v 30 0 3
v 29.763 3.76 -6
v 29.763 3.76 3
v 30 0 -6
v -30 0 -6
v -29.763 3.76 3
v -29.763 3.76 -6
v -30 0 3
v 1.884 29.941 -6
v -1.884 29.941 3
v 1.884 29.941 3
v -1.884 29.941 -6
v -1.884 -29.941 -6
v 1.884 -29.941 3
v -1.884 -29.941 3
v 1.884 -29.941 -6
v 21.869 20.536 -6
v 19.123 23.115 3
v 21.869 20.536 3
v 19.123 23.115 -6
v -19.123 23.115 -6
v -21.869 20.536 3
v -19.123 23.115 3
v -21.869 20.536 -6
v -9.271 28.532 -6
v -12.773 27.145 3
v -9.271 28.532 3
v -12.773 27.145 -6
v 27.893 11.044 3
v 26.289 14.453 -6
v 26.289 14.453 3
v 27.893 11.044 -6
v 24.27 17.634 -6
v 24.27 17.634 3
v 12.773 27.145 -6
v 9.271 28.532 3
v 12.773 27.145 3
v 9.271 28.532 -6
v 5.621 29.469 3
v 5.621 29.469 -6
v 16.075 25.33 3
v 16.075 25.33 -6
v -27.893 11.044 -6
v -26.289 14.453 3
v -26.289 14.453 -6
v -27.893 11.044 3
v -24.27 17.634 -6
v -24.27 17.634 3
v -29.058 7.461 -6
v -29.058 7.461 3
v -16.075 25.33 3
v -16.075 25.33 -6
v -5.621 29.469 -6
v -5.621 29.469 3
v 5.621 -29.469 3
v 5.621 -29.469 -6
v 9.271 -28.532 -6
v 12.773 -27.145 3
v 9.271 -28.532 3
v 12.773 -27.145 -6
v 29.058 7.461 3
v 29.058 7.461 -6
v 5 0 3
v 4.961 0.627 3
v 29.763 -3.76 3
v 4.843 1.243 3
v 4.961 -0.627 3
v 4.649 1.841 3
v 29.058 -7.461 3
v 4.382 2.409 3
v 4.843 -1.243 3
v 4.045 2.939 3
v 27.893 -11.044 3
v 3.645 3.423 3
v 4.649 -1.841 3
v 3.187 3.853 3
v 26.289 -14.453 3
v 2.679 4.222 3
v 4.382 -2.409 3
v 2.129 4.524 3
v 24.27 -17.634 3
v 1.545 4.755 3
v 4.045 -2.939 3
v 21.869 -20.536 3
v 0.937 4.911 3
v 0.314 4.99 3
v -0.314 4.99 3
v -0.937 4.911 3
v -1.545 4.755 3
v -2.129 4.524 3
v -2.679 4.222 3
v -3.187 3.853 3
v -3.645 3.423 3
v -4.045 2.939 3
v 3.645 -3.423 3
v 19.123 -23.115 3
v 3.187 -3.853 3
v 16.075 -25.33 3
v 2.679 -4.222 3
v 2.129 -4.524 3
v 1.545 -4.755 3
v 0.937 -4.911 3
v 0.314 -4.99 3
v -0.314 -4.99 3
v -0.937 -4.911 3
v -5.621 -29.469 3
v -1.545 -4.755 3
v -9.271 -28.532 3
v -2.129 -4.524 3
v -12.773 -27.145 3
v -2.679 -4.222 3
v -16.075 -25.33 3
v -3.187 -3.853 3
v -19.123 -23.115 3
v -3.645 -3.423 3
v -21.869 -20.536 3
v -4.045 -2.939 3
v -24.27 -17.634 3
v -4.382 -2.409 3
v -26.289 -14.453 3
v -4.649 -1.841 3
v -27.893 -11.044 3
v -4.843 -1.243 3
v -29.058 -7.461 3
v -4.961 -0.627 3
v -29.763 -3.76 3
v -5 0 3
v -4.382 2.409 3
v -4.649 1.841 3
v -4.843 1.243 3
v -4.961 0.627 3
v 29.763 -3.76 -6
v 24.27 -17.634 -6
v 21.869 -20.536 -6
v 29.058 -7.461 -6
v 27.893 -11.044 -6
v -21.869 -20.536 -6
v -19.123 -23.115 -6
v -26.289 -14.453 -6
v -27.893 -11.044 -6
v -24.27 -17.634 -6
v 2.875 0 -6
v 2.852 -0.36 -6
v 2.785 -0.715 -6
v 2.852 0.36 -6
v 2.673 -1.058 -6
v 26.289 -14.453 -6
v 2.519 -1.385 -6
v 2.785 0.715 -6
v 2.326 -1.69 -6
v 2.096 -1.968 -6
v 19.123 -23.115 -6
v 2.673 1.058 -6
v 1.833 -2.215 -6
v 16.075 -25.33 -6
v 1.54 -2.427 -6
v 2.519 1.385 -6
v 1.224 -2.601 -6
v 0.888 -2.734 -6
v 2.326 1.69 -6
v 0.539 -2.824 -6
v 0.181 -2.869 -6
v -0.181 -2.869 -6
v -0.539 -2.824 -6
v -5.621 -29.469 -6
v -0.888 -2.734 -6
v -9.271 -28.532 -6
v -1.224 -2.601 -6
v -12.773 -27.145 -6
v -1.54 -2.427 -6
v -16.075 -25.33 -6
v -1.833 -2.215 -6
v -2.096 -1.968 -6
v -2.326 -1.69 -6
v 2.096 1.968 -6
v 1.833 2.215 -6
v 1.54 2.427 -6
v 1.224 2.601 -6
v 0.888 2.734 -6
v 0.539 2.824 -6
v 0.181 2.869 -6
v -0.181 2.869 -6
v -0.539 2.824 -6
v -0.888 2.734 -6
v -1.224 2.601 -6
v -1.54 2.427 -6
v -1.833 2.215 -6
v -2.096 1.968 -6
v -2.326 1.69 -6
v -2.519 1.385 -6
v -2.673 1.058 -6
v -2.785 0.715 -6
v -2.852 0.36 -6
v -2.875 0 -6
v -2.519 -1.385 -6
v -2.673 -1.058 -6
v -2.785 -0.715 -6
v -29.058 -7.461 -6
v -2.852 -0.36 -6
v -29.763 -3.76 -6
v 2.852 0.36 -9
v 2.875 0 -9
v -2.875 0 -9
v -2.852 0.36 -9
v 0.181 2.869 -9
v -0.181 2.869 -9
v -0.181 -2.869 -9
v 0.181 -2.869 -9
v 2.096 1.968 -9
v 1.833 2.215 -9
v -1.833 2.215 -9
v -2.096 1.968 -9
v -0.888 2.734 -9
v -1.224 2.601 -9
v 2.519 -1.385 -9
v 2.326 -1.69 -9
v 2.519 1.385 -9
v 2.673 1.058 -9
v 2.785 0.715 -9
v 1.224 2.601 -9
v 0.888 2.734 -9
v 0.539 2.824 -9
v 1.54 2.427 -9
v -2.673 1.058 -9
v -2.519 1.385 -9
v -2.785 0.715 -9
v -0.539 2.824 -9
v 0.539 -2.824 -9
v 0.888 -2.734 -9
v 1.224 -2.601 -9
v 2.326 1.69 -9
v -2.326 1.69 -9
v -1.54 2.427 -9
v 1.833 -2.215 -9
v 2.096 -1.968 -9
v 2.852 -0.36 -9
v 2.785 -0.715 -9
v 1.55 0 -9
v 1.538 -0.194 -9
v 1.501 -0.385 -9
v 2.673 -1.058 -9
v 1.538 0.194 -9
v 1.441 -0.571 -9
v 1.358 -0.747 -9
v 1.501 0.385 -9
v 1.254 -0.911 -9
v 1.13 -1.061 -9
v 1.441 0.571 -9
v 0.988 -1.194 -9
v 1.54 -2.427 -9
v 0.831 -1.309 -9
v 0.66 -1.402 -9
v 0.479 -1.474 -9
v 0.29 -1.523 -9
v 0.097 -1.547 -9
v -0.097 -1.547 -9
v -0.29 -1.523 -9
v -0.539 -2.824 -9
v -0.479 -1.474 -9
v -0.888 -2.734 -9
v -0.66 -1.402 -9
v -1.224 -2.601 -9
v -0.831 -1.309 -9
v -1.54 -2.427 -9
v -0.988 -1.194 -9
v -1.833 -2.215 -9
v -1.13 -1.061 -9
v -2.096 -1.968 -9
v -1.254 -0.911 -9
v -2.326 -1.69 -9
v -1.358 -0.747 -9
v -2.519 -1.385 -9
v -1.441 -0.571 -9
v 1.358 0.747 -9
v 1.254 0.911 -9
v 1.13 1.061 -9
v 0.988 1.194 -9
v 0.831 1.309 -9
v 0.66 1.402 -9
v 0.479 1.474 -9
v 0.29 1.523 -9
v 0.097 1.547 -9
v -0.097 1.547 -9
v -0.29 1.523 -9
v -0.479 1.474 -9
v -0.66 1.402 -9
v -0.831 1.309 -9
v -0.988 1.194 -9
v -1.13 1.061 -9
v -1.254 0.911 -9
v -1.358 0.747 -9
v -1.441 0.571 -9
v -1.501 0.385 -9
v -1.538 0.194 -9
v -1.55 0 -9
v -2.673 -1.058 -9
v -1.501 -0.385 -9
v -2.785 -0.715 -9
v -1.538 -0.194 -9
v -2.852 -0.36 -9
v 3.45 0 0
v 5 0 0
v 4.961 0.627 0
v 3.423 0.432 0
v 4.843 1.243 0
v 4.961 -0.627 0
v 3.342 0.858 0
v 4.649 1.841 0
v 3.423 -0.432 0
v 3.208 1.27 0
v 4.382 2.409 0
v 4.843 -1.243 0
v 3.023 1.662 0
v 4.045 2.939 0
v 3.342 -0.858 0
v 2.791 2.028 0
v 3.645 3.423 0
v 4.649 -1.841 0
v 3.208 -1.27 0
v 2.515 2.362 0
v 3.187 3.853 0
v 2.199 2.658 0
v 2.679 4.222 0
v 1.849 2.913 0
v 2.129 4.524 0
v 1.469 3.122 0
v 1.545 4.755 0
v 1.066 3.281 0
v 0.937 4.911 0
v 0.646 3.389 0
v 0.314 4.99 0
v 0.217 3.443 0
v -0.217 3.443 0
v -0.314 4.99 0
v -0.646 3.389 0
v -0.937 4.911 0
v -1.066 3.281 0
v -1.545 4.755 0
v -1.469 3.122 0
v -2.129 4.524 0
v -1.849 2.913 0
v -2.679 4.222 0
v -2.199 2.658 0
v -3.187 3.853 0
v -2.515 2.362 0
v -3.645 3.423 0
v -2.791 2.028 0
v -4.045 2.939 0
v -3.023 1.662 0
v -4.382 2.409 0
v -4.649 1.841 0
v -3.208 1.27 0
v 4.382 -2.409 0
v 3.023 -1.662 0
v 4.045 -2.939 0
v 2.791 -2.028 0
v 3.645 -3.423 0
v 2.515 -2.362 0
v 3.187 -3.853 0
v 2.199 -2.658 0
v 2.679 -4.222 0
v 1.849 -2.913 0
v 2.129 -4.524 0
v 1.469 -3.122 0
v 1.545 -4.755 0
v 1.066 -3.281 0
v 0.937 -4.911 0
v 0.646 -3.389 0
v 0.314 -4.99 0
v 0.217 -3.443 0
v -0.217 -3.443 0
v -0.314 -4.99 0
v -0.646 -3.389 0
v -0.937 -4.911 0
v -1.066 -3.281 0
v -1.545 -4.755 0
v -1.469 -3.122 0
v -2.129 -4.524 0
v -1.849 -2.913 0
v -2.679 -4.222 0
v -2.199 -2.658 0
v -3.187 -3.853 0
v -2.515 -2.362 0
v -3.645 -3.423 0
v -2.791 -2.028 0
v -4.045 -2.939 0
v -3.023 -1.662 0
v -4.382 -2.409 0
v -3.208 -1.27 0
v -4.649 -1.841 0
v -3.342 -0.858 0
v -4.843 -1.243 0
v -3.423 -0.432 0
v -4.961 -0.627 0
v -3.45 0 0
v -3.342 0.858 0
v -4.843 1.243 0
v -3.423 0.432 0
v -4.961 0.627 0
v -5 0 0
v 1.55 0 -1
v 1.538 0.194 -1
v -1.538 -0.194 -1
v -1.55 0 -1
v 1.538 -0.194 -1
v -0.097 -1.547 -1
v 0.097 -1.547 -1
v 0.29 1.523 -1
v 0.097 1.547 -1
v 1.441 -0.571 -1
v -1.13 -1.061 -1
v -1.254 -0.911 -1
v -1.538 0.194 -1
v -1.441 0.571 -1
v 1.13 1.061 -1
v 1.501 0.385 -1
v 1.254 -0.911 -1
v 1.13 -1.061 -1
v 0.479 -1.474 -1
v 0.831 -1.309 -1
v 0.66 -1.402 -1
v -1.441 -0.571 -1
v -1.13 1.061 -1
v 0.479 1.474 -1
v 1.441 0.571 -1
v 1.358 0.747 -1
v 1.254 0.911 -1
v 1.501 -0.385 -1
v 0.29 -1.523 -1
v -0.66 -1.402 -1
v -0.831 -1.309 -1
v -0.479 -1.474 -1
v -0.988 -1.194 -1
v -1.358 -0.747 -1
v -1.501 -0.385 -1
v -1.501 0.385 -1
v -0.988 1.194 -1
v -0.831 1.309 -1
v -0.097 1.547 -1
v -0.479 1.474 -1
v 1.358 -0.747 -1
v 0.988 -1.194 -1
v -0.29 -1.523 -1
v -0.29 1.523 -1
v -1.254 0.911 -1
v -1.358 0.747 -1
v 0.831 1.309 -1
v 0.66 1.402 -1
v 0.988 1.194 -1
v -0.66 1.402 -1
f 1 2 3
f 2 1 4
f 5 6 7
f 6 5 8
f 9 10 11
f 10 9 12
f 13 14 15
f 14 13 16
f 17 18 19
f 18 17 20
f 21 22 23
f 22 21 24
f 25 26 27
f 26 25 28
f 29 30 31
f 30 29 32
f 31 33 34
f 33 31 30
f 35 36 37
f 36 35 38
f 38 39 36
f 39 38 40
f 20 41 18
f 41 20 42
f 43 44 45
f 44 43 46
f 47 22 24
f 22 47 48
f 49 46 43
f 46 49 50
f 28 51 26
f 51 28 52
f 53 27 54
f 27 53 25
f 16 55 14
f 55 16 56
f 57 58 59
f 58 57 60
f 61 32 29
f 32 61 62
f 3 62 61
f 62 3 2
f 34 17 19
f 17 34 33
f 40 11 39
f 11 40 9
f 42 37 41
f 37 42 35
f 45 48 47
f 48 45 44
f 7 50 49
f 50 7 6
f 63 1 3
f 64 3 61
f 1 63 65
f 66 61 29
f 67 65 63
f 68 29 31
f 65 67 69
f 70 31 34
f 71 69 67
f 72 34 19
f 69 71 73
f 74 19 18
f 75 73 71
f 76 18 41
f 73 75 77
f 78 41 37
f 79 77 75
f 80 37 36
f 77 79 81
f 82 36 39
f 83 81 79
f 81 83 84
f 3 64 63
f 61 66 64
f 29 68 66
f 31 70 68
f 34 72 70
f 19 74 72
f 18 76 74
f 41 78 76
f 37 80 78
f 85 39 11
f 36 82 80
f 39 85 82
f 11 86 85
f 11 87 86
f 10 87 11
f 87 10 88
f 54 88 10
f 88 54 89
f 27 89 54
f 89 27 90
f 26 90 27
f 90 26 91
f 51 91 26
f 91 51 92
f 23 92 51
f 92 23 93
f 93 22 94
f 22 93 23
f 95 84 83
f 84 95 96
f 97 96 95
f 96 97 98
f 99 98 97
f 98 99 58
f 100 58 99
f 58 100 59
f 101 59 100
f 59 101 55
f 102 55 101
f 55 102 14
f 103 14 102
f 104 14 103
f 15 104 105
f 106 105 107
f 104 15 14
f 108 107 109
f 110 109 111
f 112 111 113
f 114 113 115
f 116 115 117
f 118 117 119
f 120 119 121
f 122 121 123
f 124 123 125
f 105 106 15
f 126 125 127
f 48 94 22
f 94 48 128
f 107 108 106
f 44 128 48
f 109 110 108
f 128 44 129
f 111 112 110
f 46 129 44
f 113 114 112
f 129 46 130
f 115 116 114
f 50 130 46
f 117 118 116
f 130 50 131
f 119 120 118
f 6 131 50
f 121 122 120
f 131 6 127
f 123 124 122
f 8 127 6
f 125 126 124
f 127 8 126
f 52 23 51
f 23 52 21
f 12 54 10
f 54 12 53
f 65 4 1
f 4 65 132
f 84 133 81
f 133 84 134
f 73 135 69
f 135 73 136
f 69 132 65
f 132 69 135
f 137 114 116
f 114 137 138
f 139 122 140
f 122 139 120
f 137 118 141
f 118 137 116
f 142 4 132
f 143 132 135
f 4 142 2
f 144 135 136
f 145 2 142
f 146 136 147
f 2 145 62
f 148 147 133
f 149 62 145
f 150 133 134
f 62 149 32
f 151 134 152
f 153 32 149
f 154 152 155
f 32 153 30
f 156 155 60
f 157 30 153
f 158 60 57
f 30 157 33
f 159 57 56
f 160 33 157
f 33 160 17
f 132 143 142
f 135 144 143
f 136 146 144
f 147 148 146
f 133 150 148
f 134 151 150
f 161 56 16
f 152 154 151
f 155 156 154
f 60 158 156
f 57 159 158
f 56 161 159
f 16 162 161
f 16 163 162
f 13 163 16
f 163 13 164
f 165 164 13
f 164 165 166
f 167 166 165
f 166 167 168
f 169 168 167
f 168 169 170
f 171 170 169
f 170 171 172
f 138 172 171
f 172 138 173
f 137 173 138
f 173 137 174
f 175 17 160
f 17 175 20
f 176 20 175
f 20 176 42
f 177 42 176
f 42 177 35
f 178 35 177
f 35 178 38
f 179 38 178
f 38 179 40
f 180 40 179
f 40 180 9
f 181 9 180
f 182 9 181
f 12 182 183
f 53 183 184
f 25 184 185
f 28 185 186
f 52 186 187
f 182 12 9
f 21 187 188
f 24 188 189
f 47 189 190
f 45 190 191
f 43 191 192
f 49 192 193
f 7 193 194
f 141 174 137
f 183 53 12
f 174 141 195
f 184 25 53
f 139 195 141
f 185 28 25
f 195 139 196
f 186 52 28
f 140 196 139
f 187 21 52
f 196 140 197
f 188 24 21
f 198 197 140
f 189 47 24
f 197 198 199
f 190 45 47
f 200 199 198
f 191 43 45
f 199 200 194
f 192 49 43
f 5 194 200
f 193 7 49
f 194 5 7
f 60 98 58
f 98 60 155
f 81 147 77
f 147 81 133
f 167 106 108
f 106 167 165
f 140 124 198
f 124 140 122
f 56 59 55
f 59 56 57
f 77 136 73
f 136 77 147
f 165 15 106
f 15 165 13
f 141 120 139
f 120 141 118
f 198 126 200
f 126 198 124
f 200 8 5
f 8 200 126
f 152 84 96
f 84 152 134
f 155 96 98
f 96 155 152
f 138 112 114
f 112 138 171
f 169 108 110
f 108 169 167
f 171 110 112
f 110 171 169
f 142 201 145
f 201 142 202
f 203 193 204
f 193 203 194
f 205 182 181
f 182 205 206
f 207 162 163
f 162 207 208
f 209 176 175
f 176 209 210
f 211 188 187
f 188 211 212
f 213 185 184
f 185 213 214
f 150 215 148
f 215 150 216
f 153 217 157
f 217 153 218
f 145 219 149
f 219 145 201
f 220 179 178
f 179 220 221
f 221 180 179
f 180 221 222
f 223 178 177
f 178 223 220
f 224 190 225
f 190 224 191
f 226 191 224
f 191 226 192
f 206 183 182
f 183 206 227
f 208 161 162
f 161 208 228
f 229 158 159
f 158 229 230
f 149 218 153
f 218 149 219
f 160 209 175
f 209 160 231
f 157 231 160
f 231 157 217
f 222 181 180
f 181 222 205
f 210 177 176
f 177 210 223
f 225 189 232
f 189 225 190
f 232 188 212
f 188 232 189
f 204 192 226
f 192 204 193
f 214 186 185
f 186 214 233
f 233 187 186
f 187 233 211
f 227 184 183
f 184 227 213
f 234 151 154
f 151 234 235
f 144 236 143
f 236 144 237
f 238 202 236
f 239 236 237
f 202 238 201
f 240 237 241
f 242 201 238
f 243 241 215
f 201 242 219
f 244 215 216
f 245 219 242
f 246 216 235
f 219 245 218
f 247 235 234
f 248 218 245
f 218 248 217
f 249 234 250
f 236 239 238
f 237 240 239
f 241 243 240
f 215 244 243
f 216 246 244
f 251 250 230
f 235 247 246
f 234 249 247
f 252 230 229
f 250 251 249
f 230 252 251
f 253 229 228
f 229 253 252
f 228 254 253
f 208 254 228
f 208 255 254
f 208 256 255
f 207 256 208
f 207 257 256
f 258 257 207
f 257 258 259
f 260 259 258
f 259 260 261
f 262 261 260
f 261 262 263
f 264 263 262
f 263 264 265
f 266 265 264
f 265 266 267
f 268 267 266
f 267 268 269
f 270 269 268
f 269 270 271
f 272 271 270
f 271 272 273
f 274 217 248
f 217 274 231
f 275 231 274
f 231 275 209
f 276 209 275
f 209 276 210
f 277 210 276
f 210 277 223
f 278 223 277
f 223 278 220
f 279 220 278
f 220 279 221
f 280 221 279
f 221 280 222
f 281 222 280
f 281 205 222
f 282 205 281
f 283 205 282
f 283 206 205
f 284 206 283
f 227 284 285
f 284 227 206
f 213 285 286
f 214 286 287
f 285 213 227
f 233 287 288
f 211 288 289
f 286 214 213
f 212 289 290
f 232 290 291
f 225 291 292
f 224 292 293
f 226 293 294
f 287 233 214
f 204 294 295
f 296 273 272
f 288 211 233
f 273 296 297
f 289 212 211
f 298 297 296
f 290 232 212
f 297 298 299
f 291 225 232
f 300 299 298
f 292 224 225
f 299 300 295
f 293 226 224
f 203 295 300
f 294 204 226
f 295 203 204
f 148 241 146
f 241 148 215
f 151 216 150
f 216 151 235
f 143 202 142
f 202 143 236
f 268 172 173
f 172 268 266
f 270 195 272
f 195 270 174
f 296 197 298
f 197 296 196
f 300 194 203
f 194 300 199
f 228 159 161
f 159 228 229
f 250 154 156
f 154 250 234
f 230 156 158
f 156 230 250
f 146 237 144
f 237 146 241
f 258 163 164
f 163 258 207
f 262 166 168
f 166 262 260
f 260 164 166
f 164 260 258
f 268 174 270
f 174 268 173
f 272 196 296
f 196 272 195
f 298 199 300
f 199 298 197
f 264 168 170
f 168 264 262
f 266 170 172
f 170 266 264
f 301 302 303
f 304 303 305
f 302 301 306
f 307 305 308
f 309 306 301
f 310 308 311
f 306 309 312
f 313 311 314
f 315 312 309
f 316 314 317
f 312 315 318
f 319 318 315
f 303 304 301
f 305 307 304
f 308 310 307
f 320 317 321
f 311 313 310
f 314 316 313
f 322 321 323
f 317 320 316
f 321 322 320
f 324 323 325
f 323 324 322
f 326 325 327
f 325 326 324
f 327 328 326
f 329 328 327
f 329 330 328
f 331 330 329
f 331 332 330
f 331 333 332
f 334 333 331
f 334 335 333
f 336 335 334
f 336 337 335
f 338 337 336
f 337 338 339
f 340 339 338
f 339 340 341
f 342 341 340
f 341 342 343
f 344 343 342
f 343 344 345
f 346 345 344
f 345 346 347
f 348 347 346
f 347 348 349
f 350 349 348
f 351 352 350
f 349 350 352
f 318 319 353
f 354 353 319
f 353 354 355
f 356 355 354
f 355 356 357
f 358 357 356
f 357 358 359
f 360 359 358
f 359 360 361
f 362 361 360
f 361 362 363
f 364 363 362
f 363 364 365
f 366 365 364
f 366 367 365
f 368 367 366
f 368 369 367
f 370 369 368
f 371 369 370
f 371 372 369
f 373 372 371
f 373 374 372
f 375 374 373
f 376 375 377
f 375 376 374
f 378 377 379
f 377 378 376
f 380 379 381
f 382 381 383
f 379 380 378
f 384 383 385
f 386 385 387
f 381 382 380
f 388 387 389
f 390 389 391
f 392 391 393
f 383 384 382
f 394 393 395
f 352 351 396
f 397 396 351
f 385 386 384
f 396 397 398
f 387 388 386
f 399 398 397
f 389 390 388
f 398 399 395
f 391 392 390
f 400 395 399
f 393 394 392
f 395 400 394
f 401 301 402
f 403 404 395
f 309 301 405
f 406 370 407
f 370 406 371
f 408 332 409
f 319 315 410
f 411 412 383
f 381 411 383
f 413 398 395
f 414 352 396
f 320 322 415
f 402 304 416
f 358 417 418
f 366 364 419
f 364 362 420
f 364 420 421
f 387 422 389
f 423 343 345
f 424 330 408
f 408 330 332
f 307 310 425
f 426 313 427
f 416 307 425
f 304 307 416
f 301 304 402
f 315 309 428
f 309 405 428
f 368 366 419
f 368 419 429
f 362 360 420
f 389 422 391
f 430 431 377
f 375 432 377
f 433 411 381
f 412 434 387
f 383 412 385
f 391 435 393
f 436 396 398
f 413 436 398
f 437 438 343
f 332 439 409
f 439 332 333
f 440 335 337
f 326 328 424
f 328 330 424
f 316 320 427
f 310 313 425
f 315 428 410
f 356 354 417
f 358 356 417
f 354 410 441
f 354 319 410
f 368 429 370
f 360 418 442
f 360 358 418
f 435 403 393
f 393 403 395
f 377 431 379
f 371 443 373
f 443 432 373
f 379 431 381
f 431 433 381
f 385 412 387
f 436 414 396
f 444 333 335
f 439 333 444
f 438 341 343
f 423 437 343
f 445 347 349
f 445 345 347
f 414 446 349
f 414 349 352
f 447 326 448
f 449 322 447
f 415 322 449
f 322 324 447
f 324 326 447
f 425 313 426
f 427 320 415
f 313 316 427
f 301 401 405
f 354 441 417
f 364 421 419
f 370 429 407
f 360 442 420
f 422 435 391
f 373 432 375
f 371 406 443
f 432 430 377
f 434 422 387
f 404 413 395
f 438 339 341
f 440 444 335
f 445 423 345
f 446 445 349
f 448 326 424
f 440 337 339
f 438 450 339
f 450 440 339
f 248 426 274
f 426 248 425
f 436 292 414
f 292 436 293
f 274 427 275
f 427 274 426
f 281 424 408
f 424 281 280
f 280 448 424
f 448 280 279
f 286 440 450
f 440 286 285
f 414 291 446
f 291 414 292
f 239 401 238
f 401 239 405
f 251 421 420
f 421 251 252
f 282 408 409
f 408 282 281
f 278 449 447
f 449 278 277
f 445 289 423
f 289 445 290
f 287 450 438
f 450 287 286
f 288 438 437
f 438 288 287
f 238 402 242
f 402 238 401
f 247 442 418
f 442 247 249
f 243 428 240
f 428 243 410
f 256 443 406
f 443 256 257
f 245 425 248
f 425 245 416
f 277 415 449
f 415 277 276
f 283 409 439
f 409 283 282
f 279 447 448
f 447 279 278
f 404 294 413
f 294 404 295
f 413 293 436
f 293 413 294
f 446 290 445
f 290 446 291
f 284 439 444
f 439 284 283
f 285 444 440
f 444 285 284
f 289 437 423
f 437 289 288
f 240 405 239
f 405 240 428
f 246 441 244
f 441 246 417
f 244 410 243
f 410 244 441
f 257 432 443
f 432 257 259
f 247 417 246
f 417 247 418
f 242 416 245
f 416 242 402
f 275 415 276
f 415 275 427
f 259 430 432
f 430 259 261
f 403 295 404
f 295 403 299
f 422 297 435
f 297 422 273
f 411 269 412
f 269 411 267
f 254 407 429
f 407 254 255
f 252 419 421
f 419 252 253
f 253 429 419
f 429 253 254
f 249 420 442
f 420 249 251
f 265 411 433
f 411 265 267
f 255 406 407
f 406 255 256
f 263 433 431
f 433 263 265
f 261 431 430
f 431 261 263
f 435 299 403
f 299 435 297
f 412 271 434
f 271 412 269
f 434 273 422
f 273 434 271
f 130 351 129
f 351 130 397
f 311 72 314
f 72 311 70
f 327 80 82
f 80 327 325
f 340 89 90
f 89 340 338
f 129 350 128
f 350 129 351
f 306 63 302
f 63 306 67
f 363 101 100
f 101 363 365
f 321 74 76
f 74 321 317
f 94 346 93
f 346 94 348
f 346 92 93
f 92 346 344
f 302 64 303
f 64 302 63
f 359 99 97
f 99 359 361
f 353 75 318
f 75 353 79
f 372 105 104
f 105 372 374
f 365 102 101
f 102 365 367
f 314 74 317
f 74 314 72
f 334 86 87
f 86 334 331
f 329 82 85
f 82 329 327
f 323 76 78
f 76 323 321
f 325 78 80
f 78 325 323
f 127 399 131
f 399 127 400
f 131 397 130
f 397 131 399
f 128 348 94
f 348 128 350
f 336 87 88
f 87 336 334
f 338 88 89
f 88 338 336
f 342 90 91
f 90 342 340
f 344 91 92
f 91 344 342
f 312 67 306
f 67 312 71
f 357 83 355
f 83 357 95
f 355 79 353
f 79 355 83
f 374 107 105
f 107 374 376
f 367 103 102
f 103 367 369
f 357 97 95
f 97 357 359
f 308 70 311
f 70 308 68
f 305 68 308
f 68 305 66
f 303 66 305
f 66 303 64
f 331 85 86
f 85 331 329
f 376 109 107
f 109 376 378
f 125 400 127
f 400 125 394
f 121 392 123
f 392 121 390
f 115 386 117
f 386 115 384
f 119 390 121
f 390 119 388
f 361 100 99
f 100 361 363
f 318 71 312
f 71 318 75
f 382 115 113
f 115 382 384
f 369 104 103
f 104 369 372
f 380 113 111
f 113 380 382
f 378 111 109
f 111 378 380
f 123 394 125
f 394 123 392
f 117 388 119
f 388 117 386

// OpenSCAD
$fn = 50;

difference() {
	union() {
		translate(v = [0, 0, -6.0]) {
			cylinder(h = 9, r = 30.0);
		}
		#translate(v = [0, 0, -9.0]) {
			cylinder(h = 9, r = 2.875);
		}
	}
	union() {
		translate(v = [0, 0, 0]) {
			rotate(a = [0, 0, 0]) {
				difference() {
					union() {
						translate(v = [0, 0, -9.0]) {
							cylinder(h = 9, r = 1.25);
						}
						translate(v = [0, 0, -1.0]) {
							cylinder(h = 1.0, r1 = 1.55, r2 = 3.45);
						}
						translate(v = [0, 0, -9.0]) {
							cylinder(h = 9, r = 1.55);
						}
						translate(v = [0, 0, -9.0]) {
							cylinder(h = 9, r = 1.25);
						}
					}
					union();
				}
			}
		}
		#cylinder(h = 3, r = 5.0);
	}
}
